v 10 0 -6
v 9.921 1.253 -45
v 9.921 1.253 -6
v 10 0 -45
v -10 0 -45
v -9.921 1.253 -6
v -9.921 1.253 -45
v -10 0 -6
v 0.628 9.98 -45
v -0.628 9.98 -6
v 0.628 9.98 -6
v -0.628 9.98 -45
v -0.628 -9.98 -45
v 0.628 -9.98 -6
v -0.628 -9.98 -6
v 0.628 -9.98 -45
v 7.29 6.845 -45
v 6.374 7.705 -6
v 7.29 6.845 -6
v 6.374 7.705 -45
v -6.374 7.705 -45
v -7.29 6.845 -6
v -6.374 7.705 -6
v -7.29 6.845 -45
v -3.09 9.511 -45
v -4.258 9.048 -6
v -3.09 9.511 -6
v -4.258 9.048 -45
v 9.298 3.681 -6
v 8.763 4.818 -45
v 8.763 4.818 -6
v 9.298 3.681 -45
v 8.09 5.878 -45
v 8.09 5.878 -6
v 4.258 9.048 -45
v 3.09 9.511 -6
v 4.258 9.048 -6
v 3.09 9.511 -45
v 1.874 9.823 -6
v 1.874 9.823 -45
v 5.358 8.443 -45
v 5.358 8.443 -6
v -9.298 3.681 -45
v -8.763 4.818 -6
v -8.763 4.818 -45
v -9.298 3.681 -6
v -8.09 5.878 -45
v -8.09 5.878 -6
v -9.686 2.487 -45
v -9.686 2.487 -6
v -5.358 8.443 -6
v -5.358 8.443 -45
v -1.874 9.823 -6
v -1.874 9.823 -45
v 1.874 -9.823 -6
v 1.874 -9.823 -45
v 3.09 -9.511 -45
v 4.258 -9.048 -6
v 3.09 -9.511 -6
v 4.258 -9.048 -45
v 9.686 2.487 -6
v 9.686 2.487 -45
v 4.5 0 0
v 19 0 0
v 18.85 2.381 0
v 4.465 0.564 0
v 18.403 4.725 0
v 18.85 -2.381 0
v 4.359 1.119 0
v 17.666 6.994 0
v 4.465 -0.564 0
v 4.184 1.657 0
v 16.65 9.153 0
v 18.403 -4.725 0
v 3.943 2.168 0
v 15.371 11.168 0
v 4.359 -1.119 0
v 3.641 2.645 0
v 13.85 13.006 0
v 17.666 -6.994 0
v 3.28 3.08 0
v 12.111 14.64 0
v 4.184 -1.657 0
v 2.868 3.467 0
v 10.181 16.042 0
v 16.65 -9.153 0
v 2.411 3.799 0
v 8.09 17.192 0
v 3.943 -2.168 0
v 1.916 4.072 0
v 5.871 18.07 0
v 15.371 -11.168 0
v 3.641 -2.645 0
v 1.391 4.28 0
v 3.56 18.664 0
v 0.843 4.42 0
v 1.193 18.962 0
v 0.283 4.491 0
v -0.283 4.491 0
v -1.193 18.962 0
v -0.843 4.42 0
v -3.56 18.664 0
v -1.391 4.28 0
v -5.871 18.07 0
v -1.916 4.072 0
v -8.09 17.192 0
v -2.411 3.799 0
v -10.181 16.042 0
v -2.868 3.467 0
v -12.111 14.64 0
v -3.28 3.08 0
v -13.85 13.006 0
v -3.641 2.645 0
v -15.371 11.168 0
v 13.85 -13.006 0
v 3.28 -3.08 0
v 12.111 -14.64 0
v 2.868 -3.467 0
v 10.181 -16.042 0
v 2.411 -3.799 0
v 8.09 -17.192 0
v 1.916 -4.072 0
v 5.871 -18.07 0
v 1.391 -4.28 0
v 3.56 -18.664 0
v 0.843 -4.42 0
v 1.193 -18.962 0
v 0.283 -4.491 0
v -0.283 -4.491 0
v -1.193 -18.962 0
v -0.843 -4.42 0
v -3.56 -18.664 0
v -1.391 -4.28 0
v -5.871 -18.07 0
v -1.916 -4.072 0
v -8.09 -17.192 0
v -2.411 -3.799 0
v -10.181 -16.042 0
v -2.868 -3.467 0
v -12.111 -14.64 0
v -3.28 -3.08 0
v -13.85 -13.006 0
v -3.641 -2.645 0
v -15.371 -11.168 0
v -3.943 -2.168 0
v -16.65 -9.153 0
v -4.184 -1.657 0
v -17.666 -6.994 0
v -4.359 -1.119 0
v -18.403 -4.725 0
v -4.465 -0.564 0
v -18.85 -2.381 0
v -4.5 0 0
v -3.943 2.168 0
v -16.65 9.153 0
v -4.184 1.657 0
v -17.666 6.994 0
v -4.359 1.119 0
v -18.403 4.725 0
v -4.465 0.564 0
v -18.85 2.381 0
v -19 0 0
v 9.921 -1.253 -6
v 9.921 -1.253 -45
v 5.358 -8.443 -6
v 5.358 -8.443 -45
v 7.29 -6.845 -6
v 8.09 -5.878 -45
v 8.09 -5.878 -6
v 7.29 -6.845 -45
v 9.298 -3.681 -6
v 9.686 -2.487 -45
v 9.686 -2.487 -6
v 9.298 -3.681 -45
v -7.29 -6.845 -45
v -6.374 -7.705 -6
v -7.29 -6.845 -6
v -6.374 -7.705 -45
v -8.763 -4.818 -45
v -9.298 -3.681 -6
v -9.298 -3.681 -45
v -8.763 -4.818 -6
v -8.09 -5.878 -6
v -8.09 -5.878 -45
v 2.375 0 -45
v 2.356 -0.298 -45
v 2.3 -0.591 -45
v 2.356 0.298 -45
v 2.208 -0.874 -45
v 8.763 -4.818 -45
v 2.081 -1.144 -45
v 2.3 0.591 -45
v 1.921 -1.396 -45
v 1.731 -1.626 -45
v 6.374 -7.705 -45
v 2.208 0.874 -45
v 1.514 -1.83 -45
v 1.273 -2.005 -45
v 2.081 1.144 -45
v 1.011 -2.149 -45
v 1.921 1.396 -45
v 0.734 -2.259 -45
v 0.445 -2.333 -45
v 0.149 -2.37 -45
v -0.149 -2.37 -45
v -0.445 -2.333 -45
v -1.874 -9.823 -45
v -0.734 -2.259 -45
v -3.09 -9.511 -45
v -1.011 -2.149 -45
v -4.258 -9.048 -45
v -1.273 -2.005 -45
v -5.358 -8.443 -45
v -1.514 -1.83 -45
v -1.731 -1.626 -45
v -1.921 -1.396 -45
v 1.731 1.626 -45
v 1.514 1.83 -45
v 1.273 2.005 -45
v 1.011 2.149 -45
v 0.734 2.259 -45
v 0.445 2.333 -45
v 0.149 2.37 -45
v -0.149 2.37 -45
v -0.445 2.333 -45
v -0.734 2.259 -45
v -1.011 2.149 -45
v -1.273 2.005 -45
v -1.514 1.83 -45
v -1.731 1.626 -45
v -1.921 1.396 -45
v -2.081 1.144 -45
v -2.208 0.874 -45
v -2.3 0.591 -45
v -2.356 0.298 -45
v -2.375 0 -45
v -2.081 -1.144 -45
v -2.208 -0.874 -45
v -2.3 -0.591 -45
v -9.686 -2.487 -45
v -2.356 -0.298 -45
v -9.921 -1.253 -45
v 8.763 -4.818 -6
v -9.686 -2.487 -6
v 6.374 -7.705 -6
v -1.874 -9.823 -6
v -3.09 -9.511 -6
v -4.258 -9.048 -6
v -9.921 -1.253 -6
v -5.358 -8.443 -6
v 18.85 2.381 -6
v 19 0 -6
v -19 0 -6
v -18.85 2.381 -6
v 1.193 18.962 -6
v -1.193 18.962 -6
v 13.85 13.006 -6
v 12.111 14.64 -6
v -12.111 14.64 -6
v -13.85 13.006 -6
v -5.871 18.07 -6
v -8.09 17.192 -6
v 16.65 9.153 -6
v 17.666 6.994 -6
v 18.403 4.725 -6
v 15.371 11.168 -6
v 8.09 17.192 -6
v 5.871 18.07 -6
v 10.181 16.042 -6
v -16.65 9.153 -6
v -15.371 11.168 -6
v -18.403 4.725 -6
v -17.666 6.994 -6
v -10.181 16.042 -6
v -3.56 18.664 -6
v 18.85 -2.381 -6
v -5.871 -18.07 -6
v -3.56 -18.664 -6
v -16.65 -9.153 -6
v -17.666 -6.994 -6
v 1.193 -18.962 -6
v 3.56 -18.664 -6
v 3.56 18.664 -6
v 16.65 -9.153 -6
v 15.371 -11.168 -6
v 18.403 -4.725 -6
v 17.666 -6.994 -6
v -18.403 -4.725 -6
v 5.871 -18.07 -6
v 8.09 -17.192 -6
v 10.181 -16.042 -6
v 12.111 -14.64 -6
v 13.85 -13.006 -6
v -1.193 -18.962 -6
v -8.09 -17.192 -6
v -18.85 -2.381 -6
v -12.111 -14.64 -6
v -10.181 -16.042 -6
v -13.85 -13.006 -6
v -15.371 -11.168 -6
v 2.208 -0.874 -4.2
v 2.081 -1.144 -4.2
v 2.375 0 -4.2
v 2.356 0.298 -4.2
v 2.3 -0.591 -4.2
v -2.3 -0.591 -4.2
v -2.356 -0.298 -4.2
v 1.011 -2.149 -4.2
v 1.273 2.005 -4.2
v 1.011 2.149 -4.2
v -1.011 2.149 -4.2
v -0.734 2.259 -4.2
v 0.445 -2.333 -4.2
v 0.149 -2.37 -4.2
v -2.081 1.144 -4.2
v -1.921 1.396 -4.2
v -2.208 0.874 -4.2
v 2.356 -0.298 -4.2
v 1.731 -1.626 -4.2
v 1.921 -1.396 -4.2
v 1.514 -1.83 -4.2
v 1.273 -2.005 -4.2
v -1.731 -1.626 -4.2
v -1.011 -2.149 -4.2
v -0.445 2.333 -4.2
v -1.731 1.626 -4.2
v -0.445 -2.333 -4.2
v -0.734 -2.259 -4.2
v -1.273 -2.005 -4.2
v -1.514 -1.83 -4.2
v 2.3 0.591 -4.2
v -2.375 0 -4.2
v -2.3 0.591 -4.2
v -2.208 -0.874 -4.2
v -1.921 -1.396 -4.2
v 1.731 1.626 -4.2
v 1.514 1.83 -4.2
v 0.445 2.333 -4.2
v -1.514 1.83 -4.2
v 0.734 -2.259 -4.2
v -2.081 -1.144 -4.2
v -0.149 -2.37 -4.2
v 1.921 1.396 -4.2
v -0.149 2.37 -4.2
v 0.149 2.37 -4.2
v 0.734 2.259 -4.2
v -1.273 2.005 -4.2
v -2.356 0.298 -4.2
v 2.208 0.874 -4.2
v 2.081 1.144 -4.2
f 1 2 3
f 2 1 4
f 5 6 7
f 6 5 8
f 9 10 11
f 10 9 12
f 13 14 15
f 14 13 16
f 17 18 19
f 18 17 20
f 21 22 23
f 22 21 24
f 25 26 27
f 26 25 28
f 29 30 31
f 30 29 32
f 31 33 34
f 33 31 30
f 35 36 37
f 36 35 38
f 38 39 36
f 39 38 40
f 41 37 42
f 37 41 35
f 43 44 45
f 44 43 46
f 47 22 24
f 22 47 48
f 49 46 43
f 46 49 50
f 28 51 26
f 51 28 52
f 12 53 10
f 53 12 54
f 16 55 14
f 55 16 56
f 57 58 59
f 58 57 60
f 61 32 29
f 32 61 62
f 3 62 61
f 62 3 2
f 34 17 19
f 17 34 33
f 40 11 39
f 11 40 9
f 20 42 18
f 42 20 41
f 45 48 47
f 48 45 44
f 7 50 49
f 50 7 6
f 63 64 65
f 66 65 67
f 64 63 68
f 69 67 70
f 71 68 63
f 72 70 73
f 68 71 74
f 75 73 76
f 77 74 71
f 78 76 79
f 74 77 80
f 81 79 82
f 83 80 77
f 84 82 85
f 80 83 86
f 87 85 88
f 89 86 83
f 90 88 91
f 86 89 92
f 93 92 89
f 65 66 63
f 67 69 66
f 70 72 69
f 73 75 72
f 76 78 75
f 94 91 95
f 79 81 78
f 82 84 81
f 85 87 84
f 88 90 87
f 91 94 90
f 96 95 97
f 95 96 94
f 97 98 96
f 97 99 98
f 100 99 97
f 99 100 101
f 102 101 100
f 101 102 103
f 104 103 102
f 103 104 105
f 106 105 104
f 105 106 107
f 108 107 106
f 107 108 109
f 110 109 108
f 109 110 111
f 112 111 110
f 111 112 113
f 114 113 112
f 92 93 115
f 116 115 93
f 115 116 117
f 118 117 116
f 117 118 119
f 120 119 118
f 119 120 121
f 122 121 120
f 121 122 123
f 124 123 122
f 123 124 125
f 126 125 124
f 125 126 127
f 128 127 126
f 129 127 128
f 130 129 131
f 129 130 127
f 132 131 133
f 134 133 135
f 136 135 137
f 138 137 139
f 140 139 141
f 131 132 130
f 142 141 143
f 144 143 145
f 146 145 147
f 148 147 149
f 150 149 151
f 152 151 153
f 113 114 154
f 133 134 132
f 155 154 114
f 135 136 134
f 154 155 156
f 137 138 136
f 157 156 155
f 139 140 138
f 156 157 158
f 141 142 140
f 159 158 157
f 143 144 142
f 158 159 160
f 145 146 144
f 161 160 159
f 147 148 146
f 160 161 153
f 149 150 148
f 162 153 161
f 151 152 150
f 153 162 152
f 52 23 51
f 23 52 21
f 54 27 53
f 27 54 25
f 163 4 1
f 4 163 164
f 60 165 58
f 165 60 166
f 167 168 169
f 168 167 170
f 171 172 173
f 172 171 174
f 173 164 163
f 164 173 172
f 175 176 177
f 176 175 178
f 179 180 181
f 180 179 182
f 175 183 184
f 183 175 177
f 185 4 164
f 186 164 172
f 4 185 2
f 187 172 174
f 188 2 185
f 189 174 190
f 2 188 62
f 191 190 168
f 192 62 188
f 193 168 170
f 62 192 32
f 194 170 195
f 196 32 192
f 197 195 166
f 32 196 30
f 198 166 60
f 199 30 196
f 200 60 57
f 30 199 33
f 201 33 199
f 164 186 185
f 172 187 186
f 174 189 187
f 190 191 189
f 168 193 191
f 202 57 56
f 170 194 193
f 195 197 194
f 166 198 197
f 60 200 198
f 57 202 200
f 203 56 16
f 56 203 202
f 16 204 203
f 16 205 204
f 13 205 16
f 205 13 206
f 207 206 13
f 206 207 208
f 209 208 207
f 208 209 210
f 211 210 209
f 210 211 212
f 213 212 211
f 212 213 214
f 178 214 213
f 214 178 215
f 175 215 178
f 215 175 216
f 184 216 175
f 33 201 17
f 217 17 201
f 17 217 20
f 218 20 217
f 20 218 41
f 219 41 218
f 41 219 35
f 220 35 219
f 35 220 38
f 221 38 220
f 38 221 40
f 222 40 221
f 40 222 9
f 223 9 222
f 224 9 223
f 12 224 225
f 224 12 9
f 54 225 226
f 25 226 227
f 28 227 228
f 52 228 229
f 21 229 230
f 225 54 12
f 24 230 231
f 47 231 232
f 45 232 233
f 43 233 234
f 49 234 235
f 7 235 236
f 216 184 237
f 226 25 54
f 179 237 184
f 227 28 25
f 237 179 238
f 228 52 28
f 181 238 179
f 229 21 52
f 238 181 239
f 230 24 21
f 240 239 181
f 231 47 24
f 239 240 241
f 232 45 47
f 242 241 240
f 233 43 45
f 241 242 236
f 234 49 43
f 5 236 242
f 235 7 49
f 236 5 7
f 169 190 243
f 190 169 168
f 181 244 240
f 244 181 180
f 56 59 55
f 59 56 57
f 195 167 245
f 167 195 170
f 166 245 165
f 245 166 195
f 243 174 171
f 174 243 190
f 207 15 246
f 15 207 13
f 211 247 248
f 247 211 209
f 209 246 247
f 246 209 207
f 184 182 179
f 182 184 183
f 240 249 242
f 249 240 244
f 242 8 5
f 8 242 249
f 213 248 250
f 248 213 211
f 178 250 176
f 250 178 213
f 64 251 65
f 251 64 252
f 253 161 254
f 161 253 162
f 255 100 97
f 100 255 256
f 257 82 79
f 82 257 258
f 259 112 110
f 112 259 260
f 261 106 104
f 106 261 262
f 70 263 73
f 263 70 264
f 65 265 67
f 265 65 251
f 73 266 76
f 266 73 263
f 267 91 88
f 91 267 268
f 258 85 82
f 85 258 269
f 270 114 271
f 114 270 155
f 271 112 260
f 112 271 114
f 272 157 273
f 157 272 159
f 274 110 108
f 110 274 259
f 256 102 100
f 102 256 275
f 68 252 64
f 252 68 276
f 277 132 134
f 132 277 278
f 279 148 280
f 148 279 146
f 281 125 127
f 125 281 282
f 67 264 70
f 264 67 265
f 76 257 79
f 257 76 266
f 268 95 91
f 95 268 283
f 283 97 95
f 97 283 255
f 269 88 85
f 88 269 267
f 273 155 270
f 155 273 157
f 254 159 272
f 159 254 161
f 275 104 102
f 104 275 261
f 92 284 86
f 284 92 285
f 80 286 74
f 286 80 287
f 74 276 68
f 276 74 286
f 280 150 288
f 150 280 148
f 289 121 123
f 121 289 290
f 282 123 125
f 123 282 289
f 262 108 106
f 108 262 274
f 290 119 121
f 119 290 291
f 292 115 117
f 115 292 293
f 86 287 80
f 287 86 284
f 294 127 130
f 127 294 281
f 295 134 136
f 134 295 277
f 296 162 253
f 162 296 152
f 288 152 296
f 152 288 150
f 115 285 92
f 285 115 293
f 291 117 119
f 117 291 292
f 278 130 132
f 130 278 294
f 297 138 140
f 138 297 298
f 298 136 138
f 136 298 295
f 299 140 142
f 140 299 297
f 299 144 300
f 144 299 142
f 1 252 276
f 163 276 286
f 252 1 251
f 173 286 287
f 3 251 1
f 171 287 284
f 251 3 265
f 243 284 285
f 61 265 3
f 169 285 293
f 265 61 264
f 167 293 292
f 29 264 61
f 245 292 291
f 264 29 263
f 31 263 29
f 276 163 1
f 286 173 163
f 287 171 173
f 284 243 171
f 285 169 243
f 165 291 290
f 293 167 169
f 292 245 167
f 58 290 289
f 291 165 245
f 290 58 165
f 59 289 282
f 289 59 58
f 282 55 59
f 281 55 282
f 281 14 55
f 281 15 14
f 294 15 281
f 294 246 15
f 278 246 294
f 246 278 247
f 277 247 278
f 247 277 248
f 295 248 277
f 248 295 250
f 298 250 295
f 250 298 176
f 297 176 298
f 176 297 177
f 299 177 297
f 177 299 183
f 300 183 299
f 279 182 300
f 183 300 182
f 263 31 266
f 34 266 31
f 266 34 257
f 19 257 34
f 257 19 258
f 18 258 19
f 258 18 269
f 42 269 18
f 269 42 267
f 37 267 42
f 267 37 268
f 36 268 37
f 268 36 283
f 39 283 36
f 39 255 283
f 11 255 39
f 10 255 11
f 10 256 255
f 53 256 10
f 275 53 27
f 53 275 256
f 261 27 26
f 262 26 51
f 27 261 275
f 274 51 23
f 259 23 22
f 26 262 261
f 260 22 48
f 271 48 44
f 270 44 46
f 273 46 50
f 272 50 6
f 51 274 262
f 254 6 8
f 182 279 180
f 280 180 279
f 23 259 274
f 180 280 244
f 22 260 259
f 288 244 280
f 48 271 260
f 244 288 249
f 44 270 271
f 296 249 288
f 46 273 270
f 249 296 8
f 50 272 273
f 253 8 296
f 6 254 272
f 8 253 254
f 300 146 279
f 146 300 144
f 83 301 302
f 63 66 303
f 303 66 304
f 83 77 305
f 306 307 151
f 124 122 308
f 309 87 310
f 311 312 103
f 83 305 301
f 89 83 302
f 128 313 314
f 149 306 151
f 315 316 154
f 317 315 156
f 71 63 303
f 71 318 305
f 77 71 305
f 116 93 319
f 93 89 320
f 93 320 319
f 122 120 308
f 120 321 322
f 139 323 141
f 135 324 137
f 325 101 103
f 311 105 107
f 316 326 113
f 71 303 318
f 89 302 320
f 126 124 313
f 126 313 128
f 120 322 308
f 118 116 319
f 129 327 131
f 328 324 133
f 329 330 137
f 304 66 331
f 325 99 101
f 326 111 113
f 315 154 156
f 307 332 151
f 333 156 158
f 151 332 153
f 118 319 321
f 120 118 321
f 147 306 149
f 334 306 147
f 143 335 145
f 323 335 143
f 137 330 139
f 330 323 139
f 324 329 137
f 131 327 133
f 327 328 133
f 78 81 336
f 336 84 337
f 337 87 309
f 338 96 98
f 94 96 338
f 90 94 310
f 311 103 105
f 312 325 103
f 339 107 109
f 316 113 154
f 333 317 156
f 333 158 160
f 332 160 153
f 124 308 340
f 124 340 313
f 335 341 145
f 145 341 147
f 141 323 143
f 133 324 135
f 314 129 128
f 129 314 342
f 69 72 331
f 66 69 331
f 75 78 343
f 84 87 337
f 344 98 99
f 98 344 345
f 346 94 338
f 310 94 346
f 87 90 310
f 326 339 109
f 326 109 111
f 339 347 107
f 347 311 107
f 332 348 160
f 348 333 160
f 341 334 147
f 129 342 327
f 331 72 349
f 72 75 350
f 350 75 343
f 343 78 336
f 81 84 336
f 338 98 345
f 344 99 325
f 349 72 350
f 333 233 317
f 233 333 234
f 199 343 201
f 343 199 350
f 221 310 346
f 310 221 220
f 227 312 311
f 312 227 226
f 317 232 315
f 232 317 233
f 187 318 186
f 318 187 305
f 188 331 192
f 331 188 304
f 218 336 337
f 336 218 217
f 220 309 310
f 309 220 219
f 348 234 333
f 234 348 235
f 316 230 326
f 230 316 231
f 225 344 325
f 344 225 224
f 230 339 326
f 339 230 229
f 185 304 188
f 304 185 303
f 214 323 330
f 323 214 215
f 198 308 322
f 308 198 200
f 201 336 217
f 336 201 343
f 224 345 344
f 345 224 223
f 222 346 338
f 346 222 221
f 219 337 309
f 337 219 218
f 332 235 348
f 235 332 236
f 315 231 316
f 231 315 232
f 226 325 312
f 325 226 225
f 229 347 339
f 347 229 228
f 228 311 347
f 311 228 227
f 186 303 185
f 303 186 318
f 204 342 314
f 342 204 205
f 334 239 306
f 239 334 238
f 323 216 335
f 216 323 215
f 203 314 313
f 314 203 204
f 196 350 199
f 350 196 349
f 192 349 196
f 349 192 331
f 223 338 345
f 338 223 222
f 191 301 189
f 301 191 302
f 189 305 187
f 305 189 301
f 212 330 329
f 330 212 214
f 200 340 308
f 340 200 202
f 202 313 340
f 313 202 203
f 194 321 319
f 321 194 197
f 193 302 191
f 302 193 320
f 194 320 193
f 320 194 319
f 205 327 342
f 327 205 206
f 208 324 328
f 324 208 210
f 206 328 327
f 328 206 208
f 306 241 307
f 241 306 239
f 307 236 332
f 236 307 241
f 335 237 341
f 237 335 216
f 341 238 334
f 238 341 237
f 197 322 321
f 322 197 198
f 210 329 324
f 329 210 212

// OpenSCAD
$fn = 50;


difference() {
	union() {
		translate(v = [0, 0, -45.0000000000]) {
			cylinder(h = 45, r = 10.0000000000);
		}
		translate(v = [0, 0, -6.0000000000]) {
			cylinder(h = 6, r = 19.0000000000);
		}
	}
	union() {
		translate(v = [0, 0, 0]) {
			rotate(a = [0, 0, 0]) {
				difference() {
					union() {
						#translate(v = [0, 0, -45.0000000000]) {
							cylinder(h = 45, r = 2.2500000000);
						}
						#translate(v = [0, 0, -4.2000000000]) {
							cylinder(h = 4.2000000000, r = 10.0000000000, r1 = 2.3750000000, r2 = 4.5000000000);
						}
						#translate(v = [0, 0, -45.0000000000]) {
							cylinder(h = 45, r = 2.3750000000);
						}
						#translate(v = [0, 0, -45.0000000000]) {
							cylinder(h = 45, r = 2.2500000000);
						}
					}
					union();
				}
			}
		}
	}
}
